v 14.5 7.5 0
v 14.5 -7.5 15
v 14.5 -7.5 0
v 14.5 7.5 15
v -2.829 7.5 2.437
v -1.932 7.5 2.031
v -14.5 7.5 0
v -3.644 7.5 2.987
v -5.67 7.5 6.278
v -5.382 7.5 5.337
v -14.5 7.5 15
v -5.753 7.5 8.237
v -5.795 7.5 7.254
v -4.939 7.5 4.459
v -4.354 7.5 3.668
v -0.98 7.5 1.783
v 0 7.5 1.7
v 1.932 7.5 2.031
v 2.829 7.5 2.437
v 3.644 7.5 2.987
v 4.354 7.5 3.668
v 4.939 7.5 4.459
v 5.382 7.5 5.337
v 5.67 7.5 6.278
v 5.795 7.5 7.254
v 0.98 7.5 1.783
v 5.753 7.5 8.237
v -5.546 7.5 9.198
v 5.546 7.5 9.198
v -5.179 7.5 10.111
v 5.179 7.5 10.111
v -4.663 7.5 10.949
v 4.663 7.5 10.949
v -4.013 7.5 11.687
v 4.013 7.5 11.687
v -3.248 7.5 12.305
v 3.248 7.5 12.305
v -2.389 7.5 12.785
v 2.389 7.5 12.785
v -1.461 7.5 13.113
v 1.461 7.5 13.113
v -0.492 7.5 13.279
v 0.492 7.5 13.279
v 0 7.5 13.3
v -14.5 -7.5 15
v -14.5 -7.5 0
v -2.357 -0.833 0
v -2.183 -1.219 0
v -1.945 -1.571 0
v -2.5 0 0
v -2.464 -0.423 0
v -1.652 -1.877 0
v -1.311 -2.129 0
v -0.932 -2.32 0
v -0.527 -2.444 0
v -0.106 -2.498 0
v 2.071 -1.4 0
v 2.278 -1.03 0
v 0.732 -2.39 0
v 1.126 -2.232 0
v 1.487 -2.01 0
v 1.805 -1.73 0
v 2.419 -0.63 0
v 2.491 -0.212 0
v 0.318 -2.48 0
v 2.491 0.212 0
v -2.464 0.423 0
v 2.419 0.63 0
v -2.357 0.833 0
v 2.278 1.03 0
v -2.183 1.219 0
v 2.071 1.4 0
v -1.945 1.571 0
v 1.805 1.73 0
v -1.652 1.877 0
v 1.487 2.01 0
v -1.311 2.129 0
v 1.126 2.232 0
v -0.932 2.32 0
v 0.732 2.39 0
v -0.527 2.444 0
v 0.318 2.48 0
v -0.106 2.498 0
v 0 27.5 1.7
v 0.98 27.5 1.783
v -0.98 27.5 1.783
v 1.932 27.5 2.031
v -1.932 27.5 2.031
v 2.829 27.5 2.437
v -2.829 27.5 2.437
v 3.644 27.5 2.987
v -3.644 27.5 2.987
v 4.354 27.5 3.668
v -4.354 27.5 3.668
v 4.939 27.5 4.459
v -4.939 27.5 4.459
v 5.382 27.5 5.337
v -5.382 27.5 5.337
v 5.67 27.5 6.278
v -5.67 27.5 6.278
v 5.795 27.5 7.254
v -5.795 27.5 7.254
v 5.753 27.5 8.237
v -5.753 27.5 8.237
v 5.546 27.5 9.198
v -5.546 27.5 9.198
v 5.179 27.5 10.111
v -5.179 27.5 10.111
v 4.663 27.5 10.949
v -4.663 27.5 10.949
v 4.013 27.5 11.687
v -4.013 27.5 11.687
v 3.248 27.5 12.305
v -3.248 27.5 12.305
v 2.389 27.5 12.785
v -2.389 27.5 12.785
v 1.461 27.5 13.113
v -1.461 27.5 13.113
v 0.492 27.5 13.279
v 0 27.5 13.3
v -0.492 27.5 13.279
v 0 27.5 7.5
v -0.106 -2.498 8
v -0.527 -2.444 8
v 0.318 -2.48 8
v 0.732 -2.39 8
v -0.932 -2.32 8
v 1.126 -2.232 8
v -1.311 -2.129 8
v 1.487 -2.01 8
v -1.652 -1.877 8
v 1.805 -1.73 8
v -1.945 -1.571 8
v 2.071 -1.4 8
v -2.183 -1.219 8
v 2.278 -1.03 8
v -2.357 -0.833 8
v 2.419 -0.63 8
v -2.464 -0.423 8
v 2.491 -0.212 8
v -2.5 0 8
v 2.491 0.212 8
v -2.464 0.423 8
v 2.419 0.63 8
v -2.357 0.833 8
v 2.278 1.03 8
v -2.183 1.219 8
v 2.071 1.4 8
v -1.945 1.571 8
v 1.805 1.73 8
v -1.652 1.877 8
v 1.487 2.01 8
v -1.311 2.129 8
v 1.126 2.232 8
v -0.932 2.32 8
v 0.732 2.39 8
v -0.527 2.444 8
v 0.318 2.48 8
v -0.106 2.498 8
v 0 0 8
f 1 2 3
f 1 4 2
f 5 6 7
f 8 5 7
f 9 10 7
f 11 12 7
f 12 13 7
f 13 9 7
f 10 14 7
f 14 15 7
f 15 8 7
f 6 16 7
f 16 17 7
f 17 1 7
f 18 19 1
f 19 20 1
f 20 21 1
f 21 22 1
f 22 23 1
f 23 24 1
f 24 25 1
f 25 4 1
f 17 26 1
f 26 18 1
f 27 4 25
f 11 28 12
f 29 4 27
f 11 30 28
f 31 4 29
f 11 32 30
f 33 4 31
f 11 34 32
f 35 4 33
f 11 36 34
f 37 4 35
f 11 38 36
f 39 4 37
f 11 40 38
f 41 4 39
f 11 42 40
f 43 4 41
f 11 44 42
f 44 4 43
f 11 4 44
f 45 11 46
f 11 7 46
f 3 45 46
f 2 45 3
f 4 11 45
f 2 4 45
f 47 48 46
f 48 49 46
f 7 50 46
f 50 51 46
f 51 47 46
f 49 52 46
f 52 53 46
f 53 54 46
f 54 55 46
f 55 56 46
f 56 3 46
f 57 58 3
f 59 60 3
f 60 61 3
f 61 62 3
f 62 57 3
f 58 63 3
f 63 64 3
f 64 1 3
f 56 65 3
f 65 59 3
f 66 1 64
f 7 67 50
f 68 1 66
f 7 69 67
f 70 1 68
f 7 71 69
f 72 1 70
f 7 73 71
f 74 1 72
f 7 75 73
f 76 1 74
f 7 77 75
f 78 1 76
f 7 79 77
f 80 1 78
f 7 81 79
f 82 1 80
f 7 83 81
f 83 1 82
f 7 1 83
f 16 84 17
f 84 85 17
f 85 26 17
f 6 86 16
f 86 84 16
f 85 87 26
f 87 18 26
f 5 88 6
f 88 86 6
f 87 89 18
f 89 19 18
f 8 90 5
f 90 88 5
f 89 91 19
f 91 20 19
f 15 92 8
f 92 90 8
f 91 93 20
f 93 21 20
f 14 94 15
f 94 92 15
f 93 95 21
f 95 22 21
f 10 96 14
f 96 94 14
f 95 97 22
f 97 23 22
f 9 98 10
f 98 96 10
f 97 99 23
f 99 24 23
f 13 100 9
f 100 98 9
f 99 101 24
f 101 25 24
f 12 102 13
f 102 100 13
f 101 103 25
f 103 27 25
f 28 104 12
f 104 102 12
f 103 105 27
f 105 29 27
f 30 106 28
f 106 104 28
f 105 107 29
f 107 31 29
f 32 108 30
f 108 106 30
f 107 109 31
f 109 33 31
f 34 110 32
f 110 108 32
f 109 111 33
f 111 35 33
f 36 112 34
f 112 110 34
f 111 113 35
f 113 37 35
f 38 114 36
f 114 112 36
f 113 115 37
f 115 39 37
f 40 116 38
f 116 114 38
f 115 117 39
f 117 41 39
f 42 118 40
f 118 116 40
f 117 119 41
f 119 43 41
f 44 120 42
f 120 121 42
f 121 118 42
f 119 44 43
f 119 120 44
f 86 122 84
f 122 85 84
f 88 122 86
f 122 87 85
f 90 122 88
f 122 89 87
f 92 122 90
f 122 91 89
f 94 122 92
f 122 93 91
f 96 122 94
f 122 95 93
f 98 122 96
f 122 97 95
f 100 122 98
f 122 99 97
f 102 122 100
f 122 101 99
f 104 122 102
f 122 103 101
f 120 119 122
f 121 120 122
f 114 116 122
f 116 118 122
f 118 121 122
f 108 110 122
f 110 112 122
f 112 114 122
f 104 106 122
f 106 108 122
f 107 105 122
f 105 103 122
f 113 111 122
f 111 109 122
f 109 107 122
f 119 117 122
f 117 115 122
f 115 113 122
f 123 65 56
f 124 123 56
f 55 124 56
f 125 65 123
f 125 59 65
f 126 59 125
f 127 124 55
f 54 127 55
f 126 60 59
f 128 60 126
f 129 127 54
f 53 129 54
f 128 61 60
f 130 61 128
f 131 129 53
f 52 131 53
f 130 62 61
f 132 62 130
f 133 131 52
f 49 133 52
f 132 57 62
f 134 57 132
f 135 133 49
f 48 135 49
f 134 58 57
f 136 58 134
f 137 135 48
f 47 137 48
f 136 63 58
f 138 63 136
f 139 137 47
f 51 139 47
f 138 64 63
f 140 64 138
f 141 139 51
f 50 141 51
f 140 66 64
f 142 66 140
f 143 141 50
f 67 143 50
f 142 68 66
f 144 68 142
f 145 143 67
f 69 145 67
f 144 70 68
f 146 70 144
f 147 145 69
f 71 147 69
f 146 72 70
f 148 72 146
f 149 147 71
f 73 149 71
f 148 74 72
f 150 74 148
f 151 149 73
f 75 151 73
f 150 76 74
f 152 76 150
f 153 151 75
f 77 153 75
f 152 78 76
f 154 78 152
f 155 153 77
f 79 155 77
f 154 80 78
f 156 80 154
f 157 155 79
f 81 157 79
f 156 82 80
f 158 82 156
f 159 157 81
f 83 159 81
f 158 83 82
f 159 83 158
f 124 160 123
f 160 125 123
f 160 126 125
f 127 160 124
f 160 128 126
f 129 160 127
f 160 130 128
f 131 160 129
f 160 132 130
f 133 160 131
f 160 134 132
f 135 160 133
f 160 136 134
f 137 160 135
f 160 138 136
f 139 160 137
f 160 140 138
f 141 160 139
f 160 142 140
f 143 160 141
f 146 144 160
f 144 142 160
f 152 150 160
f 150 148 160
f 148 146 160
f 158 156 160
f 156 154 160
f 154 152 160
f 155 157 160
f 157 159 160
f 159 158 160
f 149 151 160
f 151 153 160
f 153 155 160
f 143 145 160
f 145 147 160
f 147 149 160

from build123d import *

# Parameters (mm, degrees)
SKETCH1_W           = 29
SKETCH1_H           = 15
BOSS_EXTRUDE1_DEPTH = 15
SKETCH2_R           = 5.8
BOSS_EXTRUDE2_DEPTH = 20
SKETCH3_R           = 2.5
CUT_EXTRUDE1_DEPTH  = 8


with BuildPart() as part:
    # Sketch1 → Boss-Extrude1 (new body)
    with BuildSketch(Plane.XY):
        Rectangle(SKETCH1_W, SKETCH1_H)
    extrude(amount=BOSS_EXTRUDE1_DEPTH)

    # Sketch2 → Boss-Extrude2 (add)
    with BuildSketch(Plane(origin=(0, 7.5, 0), x_dir=(1, 0, 0), z_dir=(0, 1, 0))):
        with Locations((0, -7.5)):
            Circle(SKETCH2_R)
    extrude(amount=BOSS_EXTRUDE2_DEPTH)

    # Sketch3 → Cut-Extrude1 (cut)
    with BuildSketch(Plane(origin=(0, 0, 0), x_dir=(-1, 0, 0), z_dir=(0, 0, -1))):
        Circle(SKETCH3_R)
    extrude(amount=-CUT_EXTRUDE1_DEPTH, mode=Mode.SUBTRACT)


solid = part.part
